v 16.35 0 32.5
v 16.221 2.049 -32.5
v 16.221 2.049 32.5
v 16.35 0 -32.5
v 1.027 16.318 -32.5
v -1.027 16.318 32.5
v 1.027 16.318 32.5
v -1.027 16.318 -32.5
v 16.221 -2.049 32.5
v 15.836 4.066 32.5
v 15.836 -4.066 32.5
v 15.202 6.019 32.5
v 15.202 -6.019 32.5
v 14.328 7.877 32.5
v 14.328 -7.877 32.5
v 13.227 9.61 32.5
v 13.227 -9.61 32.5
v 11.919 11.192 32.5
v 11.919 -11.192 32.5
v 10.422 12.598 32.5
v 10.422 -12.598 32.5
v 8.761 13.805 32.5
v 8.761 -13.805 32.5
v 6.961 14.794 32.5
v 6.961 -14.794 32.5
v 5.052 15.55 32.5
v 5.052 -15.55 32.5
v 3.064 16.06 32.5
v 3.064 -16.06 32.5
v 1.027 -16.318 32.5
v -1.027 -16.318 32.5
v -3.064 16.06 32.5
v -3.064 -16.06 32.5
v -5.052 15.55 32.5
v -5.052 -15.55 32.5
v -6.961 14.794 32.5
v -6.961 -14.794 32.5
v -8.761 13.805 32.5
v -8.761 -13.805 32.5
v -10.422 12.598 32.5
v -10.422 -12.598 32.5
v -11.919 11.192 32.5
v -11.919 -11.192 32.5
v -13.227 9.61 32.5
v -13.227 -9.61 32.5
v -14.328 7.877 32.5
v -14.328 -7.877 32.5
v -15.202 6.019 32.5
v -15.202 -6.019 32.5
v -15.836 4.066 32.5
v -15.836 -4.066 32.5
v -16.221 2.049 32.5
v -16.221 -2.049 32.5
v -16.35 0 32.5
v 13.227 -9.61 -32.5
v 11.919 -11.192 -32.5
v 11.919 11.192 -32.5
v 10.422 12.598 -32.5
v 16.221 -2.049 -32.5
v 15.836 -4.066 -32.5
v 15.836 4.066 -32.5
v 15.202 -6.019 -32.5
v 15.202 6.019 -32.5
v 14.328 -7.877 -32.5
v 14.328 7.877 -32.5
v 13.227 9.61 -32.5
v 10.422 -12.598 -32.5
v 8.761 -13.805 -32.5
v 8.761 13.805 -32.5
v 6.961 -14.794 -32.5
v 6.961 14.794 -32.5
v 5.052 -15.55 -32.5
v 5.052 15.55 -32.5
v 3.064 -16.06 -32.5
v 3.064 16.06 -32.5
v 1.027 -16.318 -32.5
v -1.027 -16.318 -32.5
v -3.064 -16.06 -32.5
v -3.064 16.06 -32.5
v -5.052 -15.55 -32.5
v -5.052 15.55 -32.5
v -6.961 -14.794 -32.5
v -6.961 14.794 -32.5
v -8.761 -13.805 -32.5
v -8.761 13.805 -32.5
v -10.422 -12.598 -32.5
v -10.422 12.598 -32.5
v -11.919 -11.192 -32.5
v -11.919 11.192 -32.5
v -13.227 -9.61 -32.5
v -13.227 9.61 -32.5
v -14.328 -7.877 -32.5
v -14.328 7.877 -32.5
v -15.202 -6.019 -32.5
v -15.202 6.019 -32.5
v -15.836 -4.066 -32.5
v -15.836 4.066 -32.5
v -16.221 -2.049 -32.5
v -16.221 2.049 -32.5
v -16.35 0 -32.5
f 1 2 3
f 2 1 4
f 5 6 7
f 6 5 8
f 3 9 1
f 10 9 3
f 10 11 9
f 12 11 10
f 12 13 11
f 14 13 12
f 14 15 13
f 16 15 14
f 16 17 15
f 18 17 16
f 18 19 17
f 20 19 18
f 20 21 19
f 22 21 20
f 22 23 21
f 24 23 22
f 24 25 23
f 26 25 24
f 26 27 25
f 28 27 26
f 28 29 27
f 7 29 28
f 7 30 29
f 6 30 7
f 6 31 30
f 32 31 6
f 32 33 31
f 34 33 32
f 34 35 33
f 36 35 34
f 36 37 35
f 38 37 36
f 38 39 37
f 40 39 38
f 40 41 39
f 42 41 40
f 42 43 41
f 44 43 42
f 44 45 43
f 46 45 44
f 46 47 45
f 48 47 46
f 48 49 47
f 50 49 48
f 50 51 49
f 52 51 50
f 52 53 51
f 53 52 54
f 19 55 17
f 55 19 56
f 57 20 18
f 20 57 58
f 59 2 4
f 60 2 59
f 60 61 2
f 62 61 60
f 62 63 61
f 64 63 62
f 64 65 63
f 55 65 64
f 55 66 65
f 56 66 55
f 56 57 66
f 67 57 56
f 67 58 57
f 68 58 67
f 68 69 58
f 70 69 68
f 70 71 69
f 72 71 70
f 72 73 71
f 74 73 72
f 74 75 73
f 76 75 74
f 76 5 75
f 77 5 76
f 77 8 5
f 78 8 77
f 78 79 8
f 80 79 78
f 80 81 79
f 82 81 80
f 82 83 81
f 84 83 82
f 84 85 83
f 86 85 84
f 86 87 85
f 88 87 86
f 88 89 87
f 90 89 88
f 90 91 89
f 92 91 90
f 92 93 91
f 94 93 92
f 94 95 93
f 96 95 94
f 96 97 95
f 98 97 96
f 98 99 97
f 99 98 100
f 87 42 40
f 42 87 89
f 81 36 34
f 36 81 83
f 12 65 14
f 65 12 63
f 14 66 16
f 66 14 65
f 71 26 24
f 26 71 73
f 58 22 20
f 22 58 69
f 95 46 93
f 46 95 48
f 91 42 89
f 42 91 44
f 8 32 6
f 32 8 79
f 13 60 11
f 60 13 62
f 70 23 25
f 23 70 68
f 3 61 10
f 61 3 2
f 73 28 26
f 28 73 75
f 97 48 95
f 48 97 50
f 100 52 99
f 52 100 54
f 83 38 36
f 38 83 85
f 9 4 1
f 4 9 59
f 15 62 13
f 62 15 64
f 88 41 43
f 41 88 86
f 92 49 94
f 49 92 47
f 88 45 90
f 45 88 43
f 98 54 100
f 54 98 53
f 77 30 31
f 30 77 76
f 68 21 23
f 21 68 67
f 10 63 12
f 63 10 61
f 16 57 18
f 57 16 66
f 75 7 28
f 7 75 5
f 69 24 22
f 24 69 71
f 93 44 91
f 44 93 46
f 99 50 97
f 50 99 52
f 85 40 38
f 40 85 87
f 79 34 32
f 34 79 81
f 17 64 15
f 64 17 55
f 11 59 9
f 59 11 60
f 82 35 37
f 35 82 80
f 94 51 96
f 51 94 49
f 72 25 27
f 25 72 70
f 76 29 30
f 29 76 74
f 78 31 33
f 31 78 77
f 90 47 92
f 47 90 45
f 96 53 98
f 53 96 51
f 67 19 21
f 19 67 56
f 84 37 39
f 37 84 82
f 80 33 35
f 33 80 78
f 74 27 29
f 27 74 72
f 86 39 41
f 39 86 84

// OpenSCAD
$fn = 50;


difference() {
	union() {
		translate(v = [0, 0, -32.5000000000]) {
			cylinder(h = 65, r = 16.3500000000);
		}
	}
	union() {
		translate(v = [0, 0, -100.0000000000]) {
			cylinder(h = 200, r = 0);
		}
	}
}
